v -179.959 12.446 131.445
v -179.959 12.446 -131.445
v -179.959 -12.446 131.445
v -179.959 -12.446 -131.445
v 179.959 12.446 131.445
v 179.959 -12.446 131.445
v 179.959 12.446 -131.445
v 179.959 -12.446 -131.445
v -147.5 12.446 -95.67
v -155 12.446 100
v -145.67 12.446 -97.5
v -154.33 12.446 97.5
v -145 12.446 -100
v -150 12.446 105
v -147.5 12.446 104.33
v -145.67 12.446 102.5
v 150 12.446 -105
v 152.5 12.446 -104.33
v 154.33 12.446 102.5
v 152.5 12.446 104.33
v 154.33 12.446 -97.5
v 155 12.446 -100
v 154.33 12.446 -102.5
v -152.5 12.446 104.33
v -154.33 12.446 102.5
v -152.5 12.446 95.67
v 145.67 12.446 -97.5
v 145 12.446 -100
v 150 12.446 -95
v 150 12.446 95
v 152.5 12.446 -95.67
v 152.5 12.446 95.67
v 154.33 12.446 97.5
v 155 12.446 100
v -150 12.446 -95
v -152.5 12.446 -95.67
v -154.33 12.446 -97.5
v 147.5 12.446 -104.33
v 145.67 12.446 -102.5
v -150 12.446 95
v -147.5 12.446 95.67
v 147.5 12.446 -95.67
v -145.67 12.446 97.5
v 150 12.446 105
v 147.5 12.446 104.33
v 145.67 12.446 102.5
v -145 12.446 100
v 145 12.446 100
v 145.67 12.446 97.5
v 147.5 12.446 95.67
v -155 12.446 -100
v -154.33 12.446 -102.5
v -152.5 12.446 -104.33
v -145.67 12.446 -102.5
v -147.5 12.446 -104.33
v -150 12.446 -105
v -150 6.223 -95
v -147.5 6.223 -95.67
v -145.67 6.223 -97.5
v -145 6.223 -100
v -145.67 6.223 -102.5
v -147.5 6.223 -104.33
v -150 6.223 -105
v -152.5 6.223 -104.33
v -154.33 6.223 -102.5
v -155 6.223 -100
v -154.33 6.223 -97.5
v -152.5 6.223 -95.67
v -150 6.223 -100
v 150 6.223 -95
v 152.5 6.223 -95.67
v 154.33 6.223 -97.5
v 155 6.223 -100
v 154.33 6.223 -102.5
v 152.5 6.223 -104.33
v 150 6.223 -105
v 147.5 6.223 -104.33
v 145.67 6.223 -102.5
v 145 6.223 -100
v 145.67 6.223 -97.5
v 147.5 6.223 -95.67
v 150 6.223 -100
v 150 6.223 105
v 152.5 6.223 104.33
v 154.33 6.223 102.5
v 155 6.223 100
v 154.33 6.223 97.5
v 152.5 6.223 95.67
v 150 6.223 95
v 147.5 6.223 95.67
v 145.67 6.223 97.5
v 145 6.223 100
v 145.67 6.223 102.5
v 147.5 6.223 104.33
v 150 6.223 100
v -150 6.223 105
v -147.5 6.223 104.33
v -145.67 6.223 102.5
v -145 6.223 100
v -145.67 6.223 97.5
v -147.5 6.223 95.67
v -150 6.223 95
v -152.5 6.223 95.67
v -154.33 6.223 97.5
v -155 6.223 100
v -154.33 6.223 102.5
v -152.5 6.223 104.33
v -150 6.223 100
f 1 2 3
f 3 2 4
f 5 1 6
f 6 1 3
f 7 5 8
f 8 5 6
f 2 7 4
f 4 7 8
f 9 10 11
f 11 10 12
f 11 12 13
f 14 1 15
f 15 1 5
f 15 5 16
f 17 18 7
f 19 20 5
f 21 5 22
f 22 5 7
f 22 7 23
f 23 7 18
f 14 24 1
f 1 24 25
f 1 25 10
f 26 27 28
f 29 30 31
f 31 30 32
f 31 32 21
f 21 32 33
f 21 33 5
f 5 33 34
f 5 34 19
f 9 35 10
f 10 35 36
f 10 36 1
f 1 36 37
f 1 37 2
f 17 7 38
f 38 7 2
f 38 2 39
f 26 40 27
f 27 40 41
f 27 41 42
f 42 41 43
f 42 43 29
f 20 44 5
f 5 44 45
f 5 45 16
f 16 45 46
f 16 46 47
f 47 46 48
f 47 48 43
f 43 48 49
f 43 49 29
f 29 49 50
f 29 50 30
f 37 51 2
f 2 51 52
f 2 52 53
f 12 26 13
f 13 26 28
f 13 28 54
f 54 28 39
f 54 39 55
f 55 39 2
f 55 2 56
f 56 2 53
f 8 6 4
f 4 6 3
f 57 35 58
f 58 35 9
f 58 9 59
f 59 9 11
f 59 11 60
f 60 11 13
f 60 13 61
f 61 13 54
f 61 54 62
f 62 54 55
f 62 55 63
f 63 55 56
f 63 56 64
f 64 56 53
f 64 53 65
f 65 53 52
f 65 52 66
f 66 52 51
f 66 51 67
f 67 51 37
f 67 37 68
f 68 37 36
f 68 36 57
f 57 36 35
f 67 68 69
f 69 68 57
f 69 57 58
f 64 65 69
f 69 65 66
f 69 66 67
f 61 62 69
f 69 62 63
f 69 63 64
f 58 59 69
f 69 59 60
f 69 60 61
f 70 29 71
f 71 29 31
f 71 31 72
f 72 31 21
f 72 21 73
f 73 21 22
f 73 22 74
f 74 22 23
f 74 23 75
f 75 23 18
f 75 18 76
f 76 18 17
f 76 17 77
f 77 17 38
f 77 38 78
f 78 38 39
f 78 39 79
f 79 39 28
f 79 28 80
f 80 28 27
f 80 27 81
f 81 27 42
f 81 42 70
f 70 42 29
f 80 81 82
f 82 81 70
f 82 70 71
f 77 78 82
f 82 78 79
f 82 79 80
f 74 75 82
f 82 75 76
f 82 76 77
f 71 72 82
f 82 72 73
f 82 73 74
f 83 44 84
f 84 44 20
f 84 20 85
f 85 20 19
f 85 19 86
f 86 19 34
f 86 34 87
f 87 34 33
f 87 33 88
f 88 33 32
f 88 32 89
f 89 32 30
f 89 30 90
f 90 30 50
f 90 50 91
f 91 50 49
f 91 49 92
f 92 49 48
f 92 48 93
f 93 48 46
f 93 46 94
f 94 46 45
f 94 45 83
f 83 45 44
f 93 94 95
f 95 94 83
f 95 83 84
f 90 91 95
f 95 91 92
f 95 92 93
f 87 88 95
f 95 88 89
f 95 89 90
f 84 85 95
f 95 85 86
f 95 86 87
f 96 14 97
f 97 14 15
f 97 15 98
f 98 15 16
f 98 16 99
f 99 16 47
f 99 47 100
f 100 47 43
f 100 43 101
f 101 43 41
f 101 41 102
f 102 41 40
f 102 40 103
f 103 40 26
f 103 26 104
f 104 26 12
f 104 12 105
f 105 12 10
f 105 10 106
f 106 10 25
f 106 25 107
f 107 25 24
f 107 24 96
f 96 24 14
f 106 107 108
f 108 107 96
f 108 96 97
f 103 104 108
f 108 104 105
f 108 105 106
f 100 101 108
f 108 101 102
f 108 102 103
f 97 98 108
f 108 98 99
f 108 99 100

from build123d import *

# Parameters (mm, degrees)
SKETCH1_W           = 359.918
SKETCH1_H           = 262.89
BOSS_EXTRUDE1_DEPTH = 12.446
SKETCH5_R           = 5
CUT_EXTRUDE1_DEPTH  = 6.223


with BuildPart() as part:
    # Sketch1 → Boss-Extrude1 (new body, symmetric)
    with BuildSketch(Plane(origin=(0, 0, 0), x_dir=(1, 0, 0), z_dir=(0, 1, 0))):
        Rectangle(SKETCH1_W, SKETCH1_H)
    extrude(amount=BOSS_EXTRUDE1_DEPTH, both=True)

    # Sketch5 → Cut-Extrude1 (cut)
    with BuildSketch(Plane(origin=(0, 12.446, 0), x_dir=(1, 0, 0), z_dir=(0, 1, 0))):
        with Locations((-150, 100)):
            Circle(SKETCH5_R)
        with Locations((150, 100)):
            Circle(SKETCH5_R)
        with Locations((150, -100)):
            Circle(SKETCH5_R)
        with Locations((-150, -100)):
            Circle(SKETCH5_R)
    extrude(amount=-CUT_EXTRUDE1_DEPTH, mode=Mode.SUBTRACT)


solid = part.part
